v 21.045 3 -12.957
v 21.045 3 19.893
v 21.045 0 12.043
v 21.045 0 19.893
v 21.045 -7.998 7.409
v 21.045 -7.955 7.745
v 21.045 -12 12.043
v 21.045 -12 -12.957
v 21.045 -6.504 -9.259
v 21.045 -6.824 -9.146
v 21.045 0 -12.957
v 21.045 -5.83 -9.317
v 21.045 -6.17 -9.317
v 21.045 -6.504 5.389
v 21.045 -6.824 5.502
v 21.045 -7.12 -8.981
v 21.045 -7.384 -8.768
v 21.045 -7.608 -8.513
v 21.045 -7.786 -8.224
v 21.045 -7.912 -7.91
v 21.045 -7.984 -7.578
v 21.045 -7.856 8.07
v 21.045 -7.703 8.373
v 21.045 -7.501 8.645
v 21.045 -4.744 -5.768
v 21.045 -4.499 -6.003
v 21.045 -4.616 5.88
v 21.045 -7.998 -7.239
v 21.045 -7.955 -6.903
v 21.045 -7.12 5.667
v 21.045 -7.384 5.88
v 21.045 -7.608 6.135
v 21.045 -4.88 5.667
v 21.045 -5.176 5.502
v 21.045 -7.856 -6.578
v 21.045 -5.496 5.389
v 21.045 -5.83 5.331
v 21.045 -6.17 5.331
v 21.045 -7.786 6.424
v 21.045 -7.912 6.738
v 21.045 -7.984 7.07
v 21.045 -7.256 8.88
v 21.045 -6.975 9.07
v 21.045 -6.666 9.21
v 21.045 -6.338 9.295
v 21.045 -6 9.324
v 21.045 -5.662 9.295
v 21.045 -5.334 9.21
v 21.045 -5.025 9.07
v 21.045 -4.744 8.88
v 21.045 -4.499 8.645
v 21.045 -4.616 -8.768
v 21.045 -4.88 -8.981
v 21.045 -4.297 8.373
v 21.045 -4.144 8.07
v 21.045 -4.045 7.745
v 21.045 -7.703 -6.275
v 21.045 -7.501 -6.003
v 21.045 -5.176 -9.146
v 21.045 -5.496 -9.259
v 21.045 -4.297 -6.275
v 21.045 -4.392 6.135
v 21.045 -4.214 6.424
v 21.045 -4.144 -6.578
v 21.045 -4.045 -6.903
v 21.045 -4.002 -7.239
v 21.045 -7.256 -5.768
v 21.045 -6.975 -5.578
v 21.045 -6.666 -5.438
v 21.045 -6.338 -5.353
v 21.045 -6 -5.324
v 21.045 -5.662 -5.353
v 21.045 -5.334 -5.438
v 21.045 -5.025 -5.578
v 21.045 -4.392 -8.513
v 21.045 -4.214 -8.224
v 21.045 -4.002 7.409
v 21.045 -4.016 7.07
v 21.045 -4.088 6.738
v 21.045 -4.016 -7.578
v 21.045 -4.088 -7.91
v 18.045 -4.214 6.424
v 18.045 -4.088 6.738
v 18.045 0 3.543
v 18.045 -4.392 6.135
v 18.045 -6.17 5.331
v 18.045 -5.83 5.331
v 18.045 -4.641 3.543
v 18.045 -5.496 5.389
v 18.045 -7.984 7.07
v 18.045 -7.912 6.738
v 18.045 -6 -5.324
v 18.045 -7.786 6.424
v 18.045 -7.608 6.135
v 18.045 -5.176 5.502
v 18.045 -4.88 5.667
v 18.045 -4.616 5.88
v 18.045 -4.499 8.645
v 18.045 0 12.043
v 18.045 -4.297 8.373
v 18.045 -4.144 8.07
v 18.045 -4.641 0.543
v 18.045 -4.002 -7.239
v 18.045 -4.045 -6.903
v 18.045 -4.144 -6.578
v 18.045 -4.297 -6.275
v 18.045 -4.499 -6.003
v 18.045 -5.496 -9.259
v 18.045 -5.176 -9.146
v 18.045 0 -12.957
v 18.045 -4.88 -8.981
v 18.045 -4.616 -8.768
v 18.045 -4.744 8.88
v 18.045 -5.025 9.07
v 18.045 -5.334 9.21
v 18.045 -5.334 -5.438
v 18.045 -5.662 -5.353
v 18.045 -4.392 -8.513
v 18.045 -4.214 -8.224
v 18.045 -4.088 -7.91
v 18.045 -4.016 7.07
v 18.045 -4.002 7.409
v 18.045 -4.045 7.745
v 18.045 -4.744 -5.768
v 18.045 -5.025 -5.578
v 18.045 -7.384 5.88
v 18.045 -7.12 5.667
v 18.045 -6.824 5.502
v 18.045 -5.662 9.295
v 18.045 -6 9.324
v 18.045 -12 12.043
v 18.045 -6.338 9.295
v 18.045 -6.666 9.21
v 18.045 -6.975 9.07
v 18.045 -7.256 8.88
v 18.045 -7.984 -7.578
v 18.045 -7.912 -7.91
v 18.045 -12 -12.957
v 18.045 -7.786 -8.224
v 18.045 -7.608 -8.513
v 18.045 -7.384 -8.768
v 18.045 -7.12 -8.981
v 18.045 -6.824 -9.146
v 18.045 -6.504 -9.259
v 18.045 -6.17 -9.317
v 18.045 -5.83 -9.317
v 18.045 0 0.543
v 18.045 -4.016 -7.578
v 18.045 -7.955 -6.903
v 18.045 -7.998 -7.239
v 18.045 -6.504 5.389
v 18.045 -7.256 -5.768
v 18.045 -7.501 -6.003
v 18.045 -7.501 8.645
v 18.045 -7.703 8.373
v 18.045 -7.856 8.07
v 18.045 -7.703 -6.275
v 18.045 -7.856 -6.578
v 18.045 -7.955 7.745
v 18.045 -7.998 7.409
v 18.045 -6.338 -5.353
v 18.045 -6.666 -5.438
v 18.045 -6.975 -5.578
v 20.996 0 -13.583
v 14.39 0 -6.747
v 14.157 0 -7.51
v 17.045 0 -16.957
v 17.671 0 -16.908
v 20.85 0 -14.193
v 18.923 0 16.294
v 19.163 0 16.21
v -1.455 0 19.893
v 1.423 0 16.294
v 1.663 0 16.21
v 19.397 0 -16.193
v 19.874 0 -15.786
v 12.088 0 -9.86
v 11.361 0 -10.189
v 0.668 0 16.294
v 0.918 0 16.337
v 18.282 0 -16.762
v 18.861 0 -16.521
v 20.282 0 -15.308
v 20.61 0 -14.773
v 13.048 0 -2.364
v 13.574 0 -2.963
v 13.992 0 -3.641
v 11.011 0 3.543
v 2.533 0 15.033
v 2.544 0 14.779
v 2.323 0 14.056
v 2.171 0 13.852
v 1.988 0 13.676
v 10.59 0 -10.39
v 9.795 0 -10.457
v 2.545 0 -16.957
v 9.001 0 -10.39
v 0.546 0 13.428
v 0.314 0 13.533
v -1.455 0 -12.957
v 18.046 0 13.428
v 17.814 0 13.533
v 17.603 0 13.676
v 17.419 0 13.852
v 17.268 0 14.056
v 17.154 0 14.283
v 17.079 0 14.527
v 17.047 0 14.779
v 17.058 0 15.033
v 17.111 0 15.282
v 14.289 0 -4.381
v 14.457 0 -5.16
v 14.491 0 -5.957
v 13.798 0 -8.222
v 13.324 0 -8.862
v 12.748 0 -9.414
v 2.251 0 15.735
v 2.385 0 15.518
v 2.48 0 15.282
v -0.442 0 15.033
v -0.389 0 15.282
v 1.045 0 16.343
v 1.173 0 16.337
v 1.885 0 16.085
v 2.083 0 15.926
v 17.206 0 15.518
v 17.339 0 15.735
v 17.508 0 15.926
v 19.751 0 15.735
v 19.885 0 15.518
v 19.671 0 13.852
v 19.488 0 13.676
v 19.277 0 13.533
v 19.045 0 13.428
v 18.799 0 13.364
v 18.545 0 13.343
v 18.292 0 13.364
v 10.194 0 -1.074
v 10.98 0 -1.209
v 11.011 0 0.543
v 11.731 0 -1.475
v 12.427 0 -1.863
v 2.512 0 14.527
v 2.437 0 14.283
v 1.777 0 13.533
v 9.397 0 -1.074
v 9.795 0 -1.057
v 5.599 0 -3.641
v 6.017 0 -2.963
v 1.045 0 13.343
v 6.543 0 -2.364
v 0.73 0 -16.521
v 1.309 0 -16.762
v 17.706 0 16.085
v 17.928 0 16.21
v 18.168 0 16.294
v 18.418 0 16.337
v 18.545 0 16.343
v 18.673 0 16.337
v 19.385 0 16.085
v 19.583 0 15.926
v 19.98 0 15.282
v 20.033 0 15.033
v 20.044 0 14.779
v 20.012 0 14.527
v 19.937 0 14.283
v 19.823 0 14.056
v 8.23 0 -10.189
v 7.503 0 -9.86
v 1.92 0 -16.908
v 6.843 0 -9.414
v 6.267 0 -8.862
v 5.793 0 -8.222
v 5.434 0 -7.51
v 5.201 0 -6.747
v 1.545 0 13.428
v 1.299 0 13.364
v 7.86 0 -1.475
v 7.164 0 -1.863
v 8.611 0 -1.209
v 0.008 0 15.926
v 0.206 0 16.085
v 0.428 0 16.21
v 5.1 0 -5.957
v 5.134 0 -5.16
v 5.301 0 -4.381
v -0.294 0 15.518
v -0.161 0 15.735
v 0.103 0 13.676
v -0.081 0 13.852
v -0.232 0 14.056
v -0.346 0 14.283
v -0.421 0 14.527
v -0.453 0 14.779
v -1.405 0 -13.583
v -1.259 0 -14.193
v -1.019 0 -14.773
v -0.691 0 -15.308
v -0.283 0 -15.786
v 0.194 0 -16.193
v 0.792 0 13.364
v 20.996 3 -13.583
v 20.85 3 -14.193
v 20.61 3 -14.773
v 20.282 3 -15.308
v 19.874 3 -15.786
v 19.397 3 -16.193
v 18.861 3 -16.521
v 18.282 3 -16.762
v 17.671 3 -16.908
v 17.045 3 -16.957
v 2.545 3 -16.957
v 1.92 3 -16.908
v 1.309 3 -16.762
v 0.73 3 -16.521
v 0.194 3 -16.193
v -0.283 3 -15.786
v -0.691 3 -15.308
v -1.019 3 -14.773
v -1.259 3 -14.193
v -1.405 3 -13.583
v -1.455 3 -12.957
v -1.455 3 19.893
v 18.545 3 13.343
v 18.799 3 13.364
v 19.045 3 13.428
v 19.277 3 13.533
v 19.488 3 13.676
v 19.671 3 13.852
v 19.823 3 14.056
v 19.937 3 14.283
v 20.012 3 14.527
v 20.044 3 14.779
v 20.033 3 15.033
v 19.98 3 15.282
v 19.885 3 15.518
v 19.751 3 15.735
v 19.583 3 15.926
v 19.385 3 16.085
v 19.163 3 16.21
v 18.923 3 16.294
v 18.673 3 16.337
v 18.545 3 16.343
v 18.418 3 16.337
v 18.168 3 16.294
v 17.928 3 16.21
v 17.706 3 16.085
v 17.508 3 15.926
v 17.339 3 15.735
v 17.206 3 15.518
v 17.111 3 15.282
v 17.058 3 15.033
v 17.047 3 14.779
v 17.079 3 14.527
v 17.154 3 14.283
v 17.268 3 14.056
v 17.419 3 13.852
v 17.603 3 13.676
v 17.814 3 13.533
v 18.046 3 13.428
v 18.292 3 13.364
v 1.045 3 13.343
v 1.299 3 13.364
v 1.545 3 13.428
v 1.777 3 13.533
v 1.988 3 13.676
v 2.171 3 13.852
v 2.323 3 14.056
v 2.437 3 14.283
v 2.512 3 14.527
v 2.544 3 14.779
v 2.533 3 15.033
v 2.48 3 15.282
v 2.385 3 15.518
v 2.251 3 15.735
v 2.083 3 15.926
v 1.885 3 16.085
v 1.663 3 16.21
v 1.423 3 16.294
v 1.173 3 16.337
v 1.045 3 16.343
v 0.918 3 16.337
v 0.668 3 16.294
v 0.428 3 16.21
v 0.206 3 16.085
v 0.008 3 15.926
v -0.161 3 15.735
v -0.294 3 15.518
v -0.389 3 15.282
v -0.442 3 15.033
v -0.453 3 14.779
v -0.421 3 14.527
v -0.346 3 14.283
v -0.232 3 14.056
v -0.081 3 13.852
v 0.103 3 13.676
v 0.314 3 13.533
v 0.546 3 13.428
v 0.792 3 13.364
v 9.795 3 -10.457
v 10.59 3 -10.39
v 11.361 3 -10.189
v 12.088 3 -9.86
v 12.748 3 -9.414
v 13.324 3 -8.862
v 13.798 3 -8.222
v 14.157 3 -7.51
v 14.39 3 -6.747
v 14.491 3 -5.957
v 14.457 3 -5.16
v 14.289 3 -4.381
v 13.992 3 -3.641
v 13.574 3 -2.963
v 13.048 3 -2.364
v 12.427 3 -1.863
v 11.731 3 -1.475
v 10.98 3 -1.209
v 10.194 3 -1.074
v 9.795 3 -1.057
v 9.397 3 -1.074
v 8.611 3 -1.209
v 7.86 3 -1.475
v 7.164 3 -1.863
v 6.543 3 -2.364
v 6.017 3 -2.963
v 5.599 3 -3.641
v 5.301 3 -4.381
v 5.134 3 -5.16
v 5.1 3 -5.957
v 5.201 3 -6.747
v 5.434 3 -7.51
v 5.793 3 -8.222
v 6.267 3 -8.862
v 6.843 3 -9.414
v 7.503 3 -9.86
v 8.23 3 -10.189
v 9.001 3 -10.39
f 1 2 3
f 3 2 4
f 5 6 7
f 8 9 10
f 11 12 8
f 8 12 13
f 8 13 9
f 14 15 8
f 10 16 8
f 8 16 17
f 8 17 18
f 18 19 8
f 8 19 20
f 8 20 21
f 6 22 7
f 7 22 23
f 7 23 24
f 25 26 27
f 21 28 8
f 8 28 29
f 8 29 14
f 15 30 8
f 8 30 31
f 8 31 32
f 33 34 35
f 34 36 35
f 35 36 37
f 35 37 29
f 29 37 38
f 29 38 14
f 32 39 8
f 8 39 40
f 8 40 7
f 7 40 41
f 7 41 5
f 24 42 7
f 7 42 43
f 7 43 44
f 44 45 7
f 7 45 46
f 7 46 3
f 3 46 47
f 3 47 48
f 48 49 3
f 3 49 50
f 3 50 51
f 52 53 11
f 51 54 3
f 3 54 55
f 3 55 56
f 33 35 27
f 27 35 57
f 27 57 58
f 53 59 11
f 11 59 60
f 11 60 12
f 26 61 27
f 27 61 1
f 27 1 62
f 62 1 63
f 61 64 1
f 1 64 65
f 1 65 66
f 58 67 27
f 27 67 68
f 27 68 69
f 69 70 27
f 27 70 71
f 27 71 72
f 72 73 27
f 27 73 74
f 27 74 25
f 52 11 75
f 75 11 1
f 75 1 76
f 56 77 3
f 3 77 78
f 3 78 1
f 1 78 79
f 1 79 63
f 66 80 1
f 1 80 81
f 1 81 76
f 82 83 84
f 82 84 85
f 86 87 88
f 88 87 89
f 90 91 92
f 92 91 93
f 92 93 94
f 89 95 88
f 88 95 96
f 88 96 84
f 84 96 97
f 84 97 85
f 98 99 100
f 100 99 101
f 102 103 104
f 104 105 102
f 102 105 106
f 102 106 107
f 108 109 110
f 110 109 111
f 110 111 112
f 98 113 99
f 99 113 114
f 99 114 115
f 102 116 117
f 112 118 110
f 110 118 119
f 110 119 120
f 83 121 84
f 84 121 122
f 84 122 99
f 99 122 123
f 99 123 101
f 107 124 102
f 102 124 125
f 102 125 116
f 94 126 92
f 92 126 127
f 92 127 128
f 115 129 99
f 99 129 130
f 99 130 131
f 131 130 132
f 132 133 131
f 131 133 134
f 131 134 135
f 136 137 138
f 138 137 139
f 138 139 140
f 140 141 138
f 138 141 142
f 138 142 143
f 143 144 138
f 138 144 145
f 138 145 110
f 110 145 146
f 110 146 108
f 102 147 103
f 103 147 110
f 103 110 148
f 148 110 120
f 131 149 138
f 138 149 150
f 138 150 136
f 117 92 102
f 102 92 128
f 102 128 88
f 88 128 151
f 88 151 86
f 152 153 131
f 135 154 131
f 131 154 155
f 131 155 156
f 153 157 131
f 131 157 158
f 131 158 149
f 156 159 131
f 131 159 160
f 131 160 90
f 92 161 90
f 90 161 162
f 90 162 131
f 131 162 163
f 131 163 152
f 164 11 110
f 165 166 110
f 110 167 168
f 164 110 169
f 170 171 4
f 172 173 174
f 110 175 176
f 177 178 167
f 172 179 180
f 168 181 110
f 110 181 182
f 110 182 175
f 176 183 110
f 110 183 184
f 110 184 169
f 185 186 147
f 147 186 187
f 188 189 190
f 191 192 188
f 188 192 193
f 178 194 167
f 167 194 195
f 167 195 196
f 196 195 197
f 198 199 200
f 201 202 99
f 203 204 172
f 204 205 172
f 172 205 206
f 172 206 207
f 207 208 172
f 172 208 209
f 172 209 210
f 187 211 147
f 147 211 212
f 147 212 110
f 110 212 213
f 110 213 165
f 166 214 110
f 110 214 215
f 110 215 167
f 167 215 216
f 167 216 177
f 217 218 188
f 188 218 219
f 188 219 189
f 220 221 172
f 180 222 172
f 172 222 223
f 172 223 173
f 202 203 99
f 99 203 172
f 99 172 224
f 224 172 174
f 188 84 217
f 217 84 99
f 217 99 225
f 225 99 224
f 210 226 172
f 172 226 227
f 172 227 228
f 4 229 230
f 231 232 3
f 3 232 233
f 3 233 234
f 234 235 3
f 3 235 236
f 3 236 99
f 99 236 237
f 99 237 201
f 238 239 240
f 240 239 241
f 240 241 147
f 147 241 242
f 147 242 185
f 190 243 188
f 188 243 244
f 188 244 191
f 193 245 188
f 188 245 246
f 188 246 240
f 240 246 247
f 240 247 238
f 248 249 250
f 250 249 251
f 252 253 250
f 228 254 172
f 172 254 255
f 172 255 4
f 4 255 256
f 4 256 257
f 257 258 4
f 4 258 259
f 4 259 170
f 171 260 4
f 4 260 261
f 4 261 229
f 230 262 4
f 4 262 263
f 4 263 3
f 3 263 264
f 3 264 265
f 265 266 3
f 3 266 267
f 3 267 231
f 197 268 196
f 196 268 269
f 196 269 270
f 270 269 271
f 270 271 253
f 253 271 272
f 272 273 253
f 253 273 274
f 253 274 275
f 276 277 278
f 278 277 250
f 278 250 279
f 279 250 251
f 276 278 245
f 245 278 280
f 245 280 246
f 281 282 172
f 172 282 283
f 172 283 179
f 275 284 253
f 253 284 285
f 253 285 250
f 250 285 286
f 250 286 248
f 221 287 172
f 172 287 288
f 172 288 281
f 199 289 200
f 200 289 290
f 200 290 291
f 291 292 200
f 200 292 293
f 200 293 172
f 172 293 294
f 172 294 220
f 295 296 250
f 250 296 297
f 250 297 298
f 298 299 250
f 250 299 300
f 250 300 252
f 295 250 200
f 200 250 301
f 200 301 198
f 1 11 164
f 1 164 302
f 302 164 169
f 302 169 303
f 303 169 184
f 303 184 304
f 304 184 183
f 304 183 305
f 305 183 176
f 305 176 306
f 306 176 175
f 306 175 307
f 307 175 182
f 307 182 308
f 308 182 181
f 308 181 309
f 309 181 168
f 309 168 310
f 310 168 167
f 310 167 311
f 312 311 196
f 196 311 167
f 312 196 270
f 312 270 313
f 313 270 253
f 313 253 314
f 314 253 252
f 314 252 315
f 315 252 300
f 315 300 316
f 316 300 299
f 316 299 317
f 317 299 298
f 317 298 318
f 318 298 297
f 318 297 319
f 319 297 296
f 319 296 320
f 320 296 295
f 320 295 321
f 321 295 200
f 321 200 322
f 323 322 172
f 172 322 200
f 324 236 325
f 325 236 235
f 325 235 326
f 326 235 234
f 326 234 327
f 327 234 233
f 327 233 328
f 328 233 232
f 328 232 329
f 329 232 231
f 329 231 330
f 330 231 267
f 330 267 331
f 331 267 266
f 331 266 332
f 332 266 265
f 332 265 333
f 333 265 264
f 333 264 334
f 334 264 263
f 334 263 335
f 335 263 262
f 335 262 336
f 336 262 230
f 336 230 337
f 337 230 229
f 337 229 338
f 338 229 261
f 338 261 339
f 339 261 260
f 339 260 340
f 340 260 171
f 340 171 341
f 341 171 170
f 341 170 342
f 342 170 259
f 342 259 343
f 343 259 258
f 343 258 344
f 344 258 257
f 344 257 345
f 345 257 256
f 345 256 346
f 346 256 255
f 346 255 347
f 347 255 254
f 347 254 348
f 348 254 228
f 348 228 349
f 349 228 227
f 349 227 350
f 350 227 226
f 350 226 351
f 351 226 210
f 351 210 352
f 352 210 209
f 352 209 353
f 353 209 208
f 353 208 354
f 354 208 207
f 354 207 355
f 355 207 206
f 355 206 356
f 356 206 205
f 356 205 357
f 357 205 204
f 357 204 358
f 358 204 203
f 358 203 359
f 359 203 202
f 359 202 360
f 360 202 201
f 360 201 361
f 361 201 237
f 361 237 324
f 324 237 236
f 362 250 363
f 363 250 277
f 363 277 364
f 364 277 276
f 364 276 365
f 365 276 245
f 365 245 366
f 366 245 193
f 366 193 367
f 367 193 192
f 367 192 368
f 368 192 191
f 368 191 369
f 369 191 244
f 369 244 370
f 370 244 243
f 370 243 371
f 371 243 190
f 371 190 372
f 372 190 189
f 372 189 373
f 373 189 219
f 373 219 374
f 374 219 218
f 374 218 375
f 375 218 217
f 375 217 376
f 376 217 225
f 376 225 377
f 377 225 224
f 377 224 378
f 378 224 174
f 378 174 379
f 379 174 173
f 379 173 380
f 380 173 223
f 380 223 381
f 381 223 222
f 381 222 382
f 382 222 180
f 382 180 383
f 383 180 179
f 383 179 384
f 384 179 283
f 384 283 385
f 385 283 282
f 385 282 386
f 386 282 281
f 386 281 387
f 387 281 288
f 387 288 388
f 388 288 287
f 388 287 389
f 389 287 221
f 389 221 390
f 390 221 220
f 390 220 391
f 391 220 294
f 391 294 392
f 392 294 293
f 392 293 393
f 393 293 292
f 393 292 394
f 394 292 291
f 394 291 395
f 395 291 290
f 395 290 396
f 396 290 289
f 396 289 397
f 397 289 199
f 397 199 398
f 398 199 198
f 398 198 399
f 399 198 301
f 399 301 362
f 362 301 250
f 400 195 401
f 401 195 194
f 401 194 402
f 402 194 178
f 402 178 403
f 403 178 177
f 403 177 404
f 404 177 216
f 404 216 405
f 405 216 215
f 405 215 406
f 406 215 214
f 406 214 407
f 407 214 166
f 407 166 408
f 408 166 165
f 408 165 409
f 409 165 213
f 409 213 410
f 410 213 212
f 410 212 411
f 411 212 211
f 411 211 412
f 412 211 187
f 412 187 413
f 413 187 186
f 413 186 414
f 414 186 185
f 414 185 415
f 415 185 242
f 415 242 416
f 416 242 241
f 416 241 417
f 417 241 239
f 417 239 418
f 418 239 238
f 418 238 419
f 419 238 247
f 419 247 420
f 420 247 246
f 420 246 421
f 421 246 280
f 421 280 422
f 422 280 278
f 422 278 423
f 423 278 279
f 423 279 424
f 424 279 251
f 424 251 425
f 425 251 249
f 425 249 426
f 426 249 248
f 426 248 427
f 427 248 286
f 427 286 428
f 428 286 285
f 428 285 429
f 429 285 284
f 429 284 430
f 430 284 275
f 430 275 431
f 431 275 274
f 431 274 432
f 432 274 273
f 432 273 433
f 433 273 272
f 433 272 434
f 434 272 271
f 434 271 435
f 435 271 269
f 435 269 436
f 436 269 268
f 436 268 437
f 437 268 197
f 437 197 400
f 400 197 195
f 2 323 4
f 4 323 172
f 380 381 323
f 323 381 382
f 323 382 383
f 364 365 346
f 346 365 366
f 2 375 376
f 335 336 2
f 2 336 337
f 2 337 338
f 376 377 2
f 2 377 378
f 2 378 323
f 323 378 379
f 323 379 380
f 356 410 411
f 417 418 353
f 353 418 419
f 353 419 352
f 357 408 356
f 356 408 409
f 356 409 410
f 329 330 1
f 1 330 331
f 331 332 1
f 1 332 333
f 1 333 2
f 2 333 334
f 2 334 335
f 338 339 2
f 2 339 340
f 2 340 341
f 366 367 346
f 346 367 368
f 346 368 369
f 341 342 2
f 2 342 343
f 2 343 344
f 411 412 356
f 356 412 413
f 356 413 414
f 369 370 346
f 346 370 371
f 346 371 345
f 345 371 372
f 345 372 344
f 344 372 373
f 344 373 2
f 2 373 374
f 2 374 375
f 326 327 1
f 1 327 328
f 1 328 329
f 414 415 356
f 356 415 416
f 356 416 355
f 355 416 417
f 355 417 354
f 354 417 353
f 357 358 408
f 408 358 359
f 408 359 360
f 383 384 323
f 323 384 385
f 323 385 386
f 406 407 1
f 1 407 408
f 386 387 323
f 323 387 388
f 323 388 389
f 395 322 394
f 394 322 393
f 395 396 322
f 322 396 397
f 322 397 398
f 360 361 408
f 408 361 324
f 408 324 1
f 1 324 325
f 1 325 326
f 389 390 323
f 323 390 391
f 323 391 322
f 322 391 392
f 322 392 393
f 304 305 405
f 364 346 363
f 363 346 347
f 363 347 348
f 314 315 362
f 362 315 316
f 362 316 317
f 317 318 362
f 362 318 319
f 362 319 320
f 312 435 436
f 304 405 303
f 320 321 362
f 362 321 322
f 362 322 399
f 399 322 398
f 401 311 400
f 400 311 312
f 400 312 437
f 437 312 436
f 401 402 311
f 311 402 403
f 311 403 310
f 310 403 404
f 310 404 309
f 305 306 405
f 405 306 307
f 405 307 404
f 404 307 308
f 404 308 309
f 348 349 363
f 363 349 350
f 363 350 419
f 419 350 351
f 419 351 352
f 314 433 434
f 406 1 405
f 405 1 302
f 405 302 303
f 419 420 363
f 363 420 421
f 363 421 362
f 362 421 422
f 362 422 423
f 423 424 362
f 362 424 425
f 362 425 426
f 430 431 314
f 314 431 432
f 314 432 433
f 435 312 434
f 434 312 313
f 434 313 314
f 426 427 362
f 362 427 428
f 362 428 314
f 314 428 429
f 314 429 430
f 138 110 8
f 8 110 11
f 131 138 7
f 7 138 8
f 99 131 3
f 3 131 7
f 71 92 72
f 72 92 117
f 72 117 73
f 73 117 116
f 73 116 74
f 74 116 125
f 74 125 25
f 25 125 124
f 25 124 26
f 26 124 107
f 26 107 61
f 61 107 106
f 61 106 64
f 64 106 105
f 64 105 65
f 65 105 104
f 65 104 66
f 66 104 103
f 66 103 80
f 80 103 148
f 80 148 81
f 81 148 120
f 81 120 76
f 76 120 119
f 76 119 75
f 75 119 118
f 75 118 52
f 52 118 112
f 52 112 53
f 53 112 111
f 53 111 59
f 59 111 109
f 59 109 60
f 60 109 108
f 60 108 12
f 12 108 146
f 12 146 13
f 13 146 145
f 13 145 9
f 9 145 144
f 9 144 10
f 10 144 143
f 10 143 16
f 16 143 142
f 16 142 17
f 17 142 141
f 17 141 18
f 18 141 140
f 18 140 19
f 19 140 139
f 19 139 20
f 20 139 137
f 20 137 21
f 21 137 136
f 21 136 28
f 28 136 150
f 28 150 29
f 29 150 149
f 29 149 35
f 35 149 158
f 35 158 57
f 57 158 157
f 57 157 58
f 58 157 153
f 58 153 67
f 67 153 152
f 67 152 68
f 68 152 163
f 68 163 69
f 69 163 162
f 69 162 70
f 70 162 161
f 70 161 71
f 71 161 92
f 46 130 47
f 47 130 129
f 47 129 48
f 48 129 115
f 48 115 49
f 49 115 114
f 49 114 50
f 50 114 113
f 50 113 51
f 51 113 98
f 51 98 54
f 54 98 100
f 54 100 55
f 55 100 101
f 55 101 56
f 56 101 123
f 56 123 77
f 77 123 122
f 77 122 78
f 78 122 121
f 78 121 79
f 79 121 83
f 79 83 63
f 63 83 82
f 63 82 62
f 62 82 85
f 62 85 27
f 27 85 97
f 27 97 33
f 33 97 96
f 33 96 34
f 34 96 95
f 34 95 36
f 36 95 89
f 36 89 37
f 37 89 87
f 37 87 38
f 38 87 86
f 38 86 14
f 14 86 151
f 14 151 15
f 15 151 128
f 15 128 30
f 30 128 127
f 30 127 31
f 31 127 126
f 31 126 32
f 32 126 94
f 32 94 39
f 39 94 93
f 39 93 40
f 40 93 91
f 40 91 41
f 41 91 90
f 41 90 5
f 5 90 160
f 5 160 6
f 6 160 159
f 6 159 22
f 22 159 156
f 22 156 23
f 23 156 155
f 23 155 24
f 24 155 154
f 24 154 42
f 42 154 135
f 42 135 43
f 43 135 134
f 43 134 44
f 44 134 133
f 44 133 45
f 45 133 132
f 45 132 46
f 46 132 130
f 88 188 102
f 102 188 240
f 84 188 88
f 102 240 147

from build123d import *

# Parameters (mm, degrees)
SKETCH1_R           = 1.5
SKETCH1_R_2         = 4.7
BOSS_EXTRUDE1_DEPTH = 3
SKETCH2_W           = 25
SKETCH2_H           = 12
BOSS_EXTRUDE3_DEPTH = 3
SKETCH4_R           = 2
CUT_EXTRUDE2_DEPTH  = 31.33101416
BOSS_EXTRUDE4_DEPTH = 1.5


with BuildPart() as part:
    # Sketch1 → Boss-Extrude1 (new body)
    with BuildSketch(Plane(origin=(0, 0, 0), x_dir=(1, 0, 0), z_dir=(0, 1, 0))):
        with BuildLine():
            ThreePointArc((21.045480929, 12.95727721), (19.873908054, 15.785704335), (17.045480929, 16.95727721))
            Line((17.045480929, 16.95727721), (2.545480929, 16.95727721))
            ThreePointArc((2.545480929, 16.95727721), (-0.282946196, 15.785704335), (-1.454519071, 12.95727721))
            Line((-1.454519071, 12.95727721), (-1.454519071, -19.89272279))
            Line((-1.454519071, -19.89272279), (2.724413117, -19.89272279))
            Line((2.724413117, -19.89272279), (16.866548741, -19.89272279))
            Line((16.866548741, -19.89272279), (21.045480929, -19.89272279))
            Line((21.045480929, -19.89272279), (21.045480929, 12.95727721))
        make_face()
        with Locations(Location((1.045480929, -14.84272279, 0), (0, 0, 270))):
            Circle(SKETCH1_R, mode=Mode.SUBTRACT)
        with Locations(Location((18.545480929, -14.84272279, 0), (0, 0, 270))):
            Circle(SKETCH1_R, mode=Mode.SUBTRACT)
        with Locations(Location((9.795480929, 5.75727721, 0), (0, 0, 270))):
            Circle(SKETCH1_R_2, mode=Mode.SUBTRACT)
    extrude(amount=BOSS_EXTRUDE1_DEPTH)

    # Sketch2 → Boss-Extrude3 (add)
    with BuildSketch(Plane(origin=(21.045480929, 0, 0), x_dir=(0, 0, -1), z_dir=(1, 0, 0))):
        with Locations((0.45727721, -6)):
            Rectangle(SKETCH2_W, SKETCH2_H)
    extrude(amount=-BOSS_EXTRUDE3_DEPTH)

    # Sketch4 → Cut-Extrude2 (cut, through all)
    with BuildSketch(Plane.ZY.offset(-18.045480929)):
        with Locations((7.324019086, -6)):
            Circle(SKETCH4_R)
        with Locations((-7.324019086, -6)):
            Circle(SKETCH4_R)
    extrude(amount=-CUT_EXTRUDE2_DEPTH, mode=Mode.SUBTRACT)

    # Sketch5 → Boss-Extrude4 (add, symmetric)
    with BuildSketch(Plane.XY.offset(2.04272279)):
        Polygon((18.045480929, -4.641213544), (11.011197959, 0), (18.045480929, 0), align=None)
    extrude(amount=BOSS_EXTRUDE4_DEPTH, both=True)


solid = part.part
